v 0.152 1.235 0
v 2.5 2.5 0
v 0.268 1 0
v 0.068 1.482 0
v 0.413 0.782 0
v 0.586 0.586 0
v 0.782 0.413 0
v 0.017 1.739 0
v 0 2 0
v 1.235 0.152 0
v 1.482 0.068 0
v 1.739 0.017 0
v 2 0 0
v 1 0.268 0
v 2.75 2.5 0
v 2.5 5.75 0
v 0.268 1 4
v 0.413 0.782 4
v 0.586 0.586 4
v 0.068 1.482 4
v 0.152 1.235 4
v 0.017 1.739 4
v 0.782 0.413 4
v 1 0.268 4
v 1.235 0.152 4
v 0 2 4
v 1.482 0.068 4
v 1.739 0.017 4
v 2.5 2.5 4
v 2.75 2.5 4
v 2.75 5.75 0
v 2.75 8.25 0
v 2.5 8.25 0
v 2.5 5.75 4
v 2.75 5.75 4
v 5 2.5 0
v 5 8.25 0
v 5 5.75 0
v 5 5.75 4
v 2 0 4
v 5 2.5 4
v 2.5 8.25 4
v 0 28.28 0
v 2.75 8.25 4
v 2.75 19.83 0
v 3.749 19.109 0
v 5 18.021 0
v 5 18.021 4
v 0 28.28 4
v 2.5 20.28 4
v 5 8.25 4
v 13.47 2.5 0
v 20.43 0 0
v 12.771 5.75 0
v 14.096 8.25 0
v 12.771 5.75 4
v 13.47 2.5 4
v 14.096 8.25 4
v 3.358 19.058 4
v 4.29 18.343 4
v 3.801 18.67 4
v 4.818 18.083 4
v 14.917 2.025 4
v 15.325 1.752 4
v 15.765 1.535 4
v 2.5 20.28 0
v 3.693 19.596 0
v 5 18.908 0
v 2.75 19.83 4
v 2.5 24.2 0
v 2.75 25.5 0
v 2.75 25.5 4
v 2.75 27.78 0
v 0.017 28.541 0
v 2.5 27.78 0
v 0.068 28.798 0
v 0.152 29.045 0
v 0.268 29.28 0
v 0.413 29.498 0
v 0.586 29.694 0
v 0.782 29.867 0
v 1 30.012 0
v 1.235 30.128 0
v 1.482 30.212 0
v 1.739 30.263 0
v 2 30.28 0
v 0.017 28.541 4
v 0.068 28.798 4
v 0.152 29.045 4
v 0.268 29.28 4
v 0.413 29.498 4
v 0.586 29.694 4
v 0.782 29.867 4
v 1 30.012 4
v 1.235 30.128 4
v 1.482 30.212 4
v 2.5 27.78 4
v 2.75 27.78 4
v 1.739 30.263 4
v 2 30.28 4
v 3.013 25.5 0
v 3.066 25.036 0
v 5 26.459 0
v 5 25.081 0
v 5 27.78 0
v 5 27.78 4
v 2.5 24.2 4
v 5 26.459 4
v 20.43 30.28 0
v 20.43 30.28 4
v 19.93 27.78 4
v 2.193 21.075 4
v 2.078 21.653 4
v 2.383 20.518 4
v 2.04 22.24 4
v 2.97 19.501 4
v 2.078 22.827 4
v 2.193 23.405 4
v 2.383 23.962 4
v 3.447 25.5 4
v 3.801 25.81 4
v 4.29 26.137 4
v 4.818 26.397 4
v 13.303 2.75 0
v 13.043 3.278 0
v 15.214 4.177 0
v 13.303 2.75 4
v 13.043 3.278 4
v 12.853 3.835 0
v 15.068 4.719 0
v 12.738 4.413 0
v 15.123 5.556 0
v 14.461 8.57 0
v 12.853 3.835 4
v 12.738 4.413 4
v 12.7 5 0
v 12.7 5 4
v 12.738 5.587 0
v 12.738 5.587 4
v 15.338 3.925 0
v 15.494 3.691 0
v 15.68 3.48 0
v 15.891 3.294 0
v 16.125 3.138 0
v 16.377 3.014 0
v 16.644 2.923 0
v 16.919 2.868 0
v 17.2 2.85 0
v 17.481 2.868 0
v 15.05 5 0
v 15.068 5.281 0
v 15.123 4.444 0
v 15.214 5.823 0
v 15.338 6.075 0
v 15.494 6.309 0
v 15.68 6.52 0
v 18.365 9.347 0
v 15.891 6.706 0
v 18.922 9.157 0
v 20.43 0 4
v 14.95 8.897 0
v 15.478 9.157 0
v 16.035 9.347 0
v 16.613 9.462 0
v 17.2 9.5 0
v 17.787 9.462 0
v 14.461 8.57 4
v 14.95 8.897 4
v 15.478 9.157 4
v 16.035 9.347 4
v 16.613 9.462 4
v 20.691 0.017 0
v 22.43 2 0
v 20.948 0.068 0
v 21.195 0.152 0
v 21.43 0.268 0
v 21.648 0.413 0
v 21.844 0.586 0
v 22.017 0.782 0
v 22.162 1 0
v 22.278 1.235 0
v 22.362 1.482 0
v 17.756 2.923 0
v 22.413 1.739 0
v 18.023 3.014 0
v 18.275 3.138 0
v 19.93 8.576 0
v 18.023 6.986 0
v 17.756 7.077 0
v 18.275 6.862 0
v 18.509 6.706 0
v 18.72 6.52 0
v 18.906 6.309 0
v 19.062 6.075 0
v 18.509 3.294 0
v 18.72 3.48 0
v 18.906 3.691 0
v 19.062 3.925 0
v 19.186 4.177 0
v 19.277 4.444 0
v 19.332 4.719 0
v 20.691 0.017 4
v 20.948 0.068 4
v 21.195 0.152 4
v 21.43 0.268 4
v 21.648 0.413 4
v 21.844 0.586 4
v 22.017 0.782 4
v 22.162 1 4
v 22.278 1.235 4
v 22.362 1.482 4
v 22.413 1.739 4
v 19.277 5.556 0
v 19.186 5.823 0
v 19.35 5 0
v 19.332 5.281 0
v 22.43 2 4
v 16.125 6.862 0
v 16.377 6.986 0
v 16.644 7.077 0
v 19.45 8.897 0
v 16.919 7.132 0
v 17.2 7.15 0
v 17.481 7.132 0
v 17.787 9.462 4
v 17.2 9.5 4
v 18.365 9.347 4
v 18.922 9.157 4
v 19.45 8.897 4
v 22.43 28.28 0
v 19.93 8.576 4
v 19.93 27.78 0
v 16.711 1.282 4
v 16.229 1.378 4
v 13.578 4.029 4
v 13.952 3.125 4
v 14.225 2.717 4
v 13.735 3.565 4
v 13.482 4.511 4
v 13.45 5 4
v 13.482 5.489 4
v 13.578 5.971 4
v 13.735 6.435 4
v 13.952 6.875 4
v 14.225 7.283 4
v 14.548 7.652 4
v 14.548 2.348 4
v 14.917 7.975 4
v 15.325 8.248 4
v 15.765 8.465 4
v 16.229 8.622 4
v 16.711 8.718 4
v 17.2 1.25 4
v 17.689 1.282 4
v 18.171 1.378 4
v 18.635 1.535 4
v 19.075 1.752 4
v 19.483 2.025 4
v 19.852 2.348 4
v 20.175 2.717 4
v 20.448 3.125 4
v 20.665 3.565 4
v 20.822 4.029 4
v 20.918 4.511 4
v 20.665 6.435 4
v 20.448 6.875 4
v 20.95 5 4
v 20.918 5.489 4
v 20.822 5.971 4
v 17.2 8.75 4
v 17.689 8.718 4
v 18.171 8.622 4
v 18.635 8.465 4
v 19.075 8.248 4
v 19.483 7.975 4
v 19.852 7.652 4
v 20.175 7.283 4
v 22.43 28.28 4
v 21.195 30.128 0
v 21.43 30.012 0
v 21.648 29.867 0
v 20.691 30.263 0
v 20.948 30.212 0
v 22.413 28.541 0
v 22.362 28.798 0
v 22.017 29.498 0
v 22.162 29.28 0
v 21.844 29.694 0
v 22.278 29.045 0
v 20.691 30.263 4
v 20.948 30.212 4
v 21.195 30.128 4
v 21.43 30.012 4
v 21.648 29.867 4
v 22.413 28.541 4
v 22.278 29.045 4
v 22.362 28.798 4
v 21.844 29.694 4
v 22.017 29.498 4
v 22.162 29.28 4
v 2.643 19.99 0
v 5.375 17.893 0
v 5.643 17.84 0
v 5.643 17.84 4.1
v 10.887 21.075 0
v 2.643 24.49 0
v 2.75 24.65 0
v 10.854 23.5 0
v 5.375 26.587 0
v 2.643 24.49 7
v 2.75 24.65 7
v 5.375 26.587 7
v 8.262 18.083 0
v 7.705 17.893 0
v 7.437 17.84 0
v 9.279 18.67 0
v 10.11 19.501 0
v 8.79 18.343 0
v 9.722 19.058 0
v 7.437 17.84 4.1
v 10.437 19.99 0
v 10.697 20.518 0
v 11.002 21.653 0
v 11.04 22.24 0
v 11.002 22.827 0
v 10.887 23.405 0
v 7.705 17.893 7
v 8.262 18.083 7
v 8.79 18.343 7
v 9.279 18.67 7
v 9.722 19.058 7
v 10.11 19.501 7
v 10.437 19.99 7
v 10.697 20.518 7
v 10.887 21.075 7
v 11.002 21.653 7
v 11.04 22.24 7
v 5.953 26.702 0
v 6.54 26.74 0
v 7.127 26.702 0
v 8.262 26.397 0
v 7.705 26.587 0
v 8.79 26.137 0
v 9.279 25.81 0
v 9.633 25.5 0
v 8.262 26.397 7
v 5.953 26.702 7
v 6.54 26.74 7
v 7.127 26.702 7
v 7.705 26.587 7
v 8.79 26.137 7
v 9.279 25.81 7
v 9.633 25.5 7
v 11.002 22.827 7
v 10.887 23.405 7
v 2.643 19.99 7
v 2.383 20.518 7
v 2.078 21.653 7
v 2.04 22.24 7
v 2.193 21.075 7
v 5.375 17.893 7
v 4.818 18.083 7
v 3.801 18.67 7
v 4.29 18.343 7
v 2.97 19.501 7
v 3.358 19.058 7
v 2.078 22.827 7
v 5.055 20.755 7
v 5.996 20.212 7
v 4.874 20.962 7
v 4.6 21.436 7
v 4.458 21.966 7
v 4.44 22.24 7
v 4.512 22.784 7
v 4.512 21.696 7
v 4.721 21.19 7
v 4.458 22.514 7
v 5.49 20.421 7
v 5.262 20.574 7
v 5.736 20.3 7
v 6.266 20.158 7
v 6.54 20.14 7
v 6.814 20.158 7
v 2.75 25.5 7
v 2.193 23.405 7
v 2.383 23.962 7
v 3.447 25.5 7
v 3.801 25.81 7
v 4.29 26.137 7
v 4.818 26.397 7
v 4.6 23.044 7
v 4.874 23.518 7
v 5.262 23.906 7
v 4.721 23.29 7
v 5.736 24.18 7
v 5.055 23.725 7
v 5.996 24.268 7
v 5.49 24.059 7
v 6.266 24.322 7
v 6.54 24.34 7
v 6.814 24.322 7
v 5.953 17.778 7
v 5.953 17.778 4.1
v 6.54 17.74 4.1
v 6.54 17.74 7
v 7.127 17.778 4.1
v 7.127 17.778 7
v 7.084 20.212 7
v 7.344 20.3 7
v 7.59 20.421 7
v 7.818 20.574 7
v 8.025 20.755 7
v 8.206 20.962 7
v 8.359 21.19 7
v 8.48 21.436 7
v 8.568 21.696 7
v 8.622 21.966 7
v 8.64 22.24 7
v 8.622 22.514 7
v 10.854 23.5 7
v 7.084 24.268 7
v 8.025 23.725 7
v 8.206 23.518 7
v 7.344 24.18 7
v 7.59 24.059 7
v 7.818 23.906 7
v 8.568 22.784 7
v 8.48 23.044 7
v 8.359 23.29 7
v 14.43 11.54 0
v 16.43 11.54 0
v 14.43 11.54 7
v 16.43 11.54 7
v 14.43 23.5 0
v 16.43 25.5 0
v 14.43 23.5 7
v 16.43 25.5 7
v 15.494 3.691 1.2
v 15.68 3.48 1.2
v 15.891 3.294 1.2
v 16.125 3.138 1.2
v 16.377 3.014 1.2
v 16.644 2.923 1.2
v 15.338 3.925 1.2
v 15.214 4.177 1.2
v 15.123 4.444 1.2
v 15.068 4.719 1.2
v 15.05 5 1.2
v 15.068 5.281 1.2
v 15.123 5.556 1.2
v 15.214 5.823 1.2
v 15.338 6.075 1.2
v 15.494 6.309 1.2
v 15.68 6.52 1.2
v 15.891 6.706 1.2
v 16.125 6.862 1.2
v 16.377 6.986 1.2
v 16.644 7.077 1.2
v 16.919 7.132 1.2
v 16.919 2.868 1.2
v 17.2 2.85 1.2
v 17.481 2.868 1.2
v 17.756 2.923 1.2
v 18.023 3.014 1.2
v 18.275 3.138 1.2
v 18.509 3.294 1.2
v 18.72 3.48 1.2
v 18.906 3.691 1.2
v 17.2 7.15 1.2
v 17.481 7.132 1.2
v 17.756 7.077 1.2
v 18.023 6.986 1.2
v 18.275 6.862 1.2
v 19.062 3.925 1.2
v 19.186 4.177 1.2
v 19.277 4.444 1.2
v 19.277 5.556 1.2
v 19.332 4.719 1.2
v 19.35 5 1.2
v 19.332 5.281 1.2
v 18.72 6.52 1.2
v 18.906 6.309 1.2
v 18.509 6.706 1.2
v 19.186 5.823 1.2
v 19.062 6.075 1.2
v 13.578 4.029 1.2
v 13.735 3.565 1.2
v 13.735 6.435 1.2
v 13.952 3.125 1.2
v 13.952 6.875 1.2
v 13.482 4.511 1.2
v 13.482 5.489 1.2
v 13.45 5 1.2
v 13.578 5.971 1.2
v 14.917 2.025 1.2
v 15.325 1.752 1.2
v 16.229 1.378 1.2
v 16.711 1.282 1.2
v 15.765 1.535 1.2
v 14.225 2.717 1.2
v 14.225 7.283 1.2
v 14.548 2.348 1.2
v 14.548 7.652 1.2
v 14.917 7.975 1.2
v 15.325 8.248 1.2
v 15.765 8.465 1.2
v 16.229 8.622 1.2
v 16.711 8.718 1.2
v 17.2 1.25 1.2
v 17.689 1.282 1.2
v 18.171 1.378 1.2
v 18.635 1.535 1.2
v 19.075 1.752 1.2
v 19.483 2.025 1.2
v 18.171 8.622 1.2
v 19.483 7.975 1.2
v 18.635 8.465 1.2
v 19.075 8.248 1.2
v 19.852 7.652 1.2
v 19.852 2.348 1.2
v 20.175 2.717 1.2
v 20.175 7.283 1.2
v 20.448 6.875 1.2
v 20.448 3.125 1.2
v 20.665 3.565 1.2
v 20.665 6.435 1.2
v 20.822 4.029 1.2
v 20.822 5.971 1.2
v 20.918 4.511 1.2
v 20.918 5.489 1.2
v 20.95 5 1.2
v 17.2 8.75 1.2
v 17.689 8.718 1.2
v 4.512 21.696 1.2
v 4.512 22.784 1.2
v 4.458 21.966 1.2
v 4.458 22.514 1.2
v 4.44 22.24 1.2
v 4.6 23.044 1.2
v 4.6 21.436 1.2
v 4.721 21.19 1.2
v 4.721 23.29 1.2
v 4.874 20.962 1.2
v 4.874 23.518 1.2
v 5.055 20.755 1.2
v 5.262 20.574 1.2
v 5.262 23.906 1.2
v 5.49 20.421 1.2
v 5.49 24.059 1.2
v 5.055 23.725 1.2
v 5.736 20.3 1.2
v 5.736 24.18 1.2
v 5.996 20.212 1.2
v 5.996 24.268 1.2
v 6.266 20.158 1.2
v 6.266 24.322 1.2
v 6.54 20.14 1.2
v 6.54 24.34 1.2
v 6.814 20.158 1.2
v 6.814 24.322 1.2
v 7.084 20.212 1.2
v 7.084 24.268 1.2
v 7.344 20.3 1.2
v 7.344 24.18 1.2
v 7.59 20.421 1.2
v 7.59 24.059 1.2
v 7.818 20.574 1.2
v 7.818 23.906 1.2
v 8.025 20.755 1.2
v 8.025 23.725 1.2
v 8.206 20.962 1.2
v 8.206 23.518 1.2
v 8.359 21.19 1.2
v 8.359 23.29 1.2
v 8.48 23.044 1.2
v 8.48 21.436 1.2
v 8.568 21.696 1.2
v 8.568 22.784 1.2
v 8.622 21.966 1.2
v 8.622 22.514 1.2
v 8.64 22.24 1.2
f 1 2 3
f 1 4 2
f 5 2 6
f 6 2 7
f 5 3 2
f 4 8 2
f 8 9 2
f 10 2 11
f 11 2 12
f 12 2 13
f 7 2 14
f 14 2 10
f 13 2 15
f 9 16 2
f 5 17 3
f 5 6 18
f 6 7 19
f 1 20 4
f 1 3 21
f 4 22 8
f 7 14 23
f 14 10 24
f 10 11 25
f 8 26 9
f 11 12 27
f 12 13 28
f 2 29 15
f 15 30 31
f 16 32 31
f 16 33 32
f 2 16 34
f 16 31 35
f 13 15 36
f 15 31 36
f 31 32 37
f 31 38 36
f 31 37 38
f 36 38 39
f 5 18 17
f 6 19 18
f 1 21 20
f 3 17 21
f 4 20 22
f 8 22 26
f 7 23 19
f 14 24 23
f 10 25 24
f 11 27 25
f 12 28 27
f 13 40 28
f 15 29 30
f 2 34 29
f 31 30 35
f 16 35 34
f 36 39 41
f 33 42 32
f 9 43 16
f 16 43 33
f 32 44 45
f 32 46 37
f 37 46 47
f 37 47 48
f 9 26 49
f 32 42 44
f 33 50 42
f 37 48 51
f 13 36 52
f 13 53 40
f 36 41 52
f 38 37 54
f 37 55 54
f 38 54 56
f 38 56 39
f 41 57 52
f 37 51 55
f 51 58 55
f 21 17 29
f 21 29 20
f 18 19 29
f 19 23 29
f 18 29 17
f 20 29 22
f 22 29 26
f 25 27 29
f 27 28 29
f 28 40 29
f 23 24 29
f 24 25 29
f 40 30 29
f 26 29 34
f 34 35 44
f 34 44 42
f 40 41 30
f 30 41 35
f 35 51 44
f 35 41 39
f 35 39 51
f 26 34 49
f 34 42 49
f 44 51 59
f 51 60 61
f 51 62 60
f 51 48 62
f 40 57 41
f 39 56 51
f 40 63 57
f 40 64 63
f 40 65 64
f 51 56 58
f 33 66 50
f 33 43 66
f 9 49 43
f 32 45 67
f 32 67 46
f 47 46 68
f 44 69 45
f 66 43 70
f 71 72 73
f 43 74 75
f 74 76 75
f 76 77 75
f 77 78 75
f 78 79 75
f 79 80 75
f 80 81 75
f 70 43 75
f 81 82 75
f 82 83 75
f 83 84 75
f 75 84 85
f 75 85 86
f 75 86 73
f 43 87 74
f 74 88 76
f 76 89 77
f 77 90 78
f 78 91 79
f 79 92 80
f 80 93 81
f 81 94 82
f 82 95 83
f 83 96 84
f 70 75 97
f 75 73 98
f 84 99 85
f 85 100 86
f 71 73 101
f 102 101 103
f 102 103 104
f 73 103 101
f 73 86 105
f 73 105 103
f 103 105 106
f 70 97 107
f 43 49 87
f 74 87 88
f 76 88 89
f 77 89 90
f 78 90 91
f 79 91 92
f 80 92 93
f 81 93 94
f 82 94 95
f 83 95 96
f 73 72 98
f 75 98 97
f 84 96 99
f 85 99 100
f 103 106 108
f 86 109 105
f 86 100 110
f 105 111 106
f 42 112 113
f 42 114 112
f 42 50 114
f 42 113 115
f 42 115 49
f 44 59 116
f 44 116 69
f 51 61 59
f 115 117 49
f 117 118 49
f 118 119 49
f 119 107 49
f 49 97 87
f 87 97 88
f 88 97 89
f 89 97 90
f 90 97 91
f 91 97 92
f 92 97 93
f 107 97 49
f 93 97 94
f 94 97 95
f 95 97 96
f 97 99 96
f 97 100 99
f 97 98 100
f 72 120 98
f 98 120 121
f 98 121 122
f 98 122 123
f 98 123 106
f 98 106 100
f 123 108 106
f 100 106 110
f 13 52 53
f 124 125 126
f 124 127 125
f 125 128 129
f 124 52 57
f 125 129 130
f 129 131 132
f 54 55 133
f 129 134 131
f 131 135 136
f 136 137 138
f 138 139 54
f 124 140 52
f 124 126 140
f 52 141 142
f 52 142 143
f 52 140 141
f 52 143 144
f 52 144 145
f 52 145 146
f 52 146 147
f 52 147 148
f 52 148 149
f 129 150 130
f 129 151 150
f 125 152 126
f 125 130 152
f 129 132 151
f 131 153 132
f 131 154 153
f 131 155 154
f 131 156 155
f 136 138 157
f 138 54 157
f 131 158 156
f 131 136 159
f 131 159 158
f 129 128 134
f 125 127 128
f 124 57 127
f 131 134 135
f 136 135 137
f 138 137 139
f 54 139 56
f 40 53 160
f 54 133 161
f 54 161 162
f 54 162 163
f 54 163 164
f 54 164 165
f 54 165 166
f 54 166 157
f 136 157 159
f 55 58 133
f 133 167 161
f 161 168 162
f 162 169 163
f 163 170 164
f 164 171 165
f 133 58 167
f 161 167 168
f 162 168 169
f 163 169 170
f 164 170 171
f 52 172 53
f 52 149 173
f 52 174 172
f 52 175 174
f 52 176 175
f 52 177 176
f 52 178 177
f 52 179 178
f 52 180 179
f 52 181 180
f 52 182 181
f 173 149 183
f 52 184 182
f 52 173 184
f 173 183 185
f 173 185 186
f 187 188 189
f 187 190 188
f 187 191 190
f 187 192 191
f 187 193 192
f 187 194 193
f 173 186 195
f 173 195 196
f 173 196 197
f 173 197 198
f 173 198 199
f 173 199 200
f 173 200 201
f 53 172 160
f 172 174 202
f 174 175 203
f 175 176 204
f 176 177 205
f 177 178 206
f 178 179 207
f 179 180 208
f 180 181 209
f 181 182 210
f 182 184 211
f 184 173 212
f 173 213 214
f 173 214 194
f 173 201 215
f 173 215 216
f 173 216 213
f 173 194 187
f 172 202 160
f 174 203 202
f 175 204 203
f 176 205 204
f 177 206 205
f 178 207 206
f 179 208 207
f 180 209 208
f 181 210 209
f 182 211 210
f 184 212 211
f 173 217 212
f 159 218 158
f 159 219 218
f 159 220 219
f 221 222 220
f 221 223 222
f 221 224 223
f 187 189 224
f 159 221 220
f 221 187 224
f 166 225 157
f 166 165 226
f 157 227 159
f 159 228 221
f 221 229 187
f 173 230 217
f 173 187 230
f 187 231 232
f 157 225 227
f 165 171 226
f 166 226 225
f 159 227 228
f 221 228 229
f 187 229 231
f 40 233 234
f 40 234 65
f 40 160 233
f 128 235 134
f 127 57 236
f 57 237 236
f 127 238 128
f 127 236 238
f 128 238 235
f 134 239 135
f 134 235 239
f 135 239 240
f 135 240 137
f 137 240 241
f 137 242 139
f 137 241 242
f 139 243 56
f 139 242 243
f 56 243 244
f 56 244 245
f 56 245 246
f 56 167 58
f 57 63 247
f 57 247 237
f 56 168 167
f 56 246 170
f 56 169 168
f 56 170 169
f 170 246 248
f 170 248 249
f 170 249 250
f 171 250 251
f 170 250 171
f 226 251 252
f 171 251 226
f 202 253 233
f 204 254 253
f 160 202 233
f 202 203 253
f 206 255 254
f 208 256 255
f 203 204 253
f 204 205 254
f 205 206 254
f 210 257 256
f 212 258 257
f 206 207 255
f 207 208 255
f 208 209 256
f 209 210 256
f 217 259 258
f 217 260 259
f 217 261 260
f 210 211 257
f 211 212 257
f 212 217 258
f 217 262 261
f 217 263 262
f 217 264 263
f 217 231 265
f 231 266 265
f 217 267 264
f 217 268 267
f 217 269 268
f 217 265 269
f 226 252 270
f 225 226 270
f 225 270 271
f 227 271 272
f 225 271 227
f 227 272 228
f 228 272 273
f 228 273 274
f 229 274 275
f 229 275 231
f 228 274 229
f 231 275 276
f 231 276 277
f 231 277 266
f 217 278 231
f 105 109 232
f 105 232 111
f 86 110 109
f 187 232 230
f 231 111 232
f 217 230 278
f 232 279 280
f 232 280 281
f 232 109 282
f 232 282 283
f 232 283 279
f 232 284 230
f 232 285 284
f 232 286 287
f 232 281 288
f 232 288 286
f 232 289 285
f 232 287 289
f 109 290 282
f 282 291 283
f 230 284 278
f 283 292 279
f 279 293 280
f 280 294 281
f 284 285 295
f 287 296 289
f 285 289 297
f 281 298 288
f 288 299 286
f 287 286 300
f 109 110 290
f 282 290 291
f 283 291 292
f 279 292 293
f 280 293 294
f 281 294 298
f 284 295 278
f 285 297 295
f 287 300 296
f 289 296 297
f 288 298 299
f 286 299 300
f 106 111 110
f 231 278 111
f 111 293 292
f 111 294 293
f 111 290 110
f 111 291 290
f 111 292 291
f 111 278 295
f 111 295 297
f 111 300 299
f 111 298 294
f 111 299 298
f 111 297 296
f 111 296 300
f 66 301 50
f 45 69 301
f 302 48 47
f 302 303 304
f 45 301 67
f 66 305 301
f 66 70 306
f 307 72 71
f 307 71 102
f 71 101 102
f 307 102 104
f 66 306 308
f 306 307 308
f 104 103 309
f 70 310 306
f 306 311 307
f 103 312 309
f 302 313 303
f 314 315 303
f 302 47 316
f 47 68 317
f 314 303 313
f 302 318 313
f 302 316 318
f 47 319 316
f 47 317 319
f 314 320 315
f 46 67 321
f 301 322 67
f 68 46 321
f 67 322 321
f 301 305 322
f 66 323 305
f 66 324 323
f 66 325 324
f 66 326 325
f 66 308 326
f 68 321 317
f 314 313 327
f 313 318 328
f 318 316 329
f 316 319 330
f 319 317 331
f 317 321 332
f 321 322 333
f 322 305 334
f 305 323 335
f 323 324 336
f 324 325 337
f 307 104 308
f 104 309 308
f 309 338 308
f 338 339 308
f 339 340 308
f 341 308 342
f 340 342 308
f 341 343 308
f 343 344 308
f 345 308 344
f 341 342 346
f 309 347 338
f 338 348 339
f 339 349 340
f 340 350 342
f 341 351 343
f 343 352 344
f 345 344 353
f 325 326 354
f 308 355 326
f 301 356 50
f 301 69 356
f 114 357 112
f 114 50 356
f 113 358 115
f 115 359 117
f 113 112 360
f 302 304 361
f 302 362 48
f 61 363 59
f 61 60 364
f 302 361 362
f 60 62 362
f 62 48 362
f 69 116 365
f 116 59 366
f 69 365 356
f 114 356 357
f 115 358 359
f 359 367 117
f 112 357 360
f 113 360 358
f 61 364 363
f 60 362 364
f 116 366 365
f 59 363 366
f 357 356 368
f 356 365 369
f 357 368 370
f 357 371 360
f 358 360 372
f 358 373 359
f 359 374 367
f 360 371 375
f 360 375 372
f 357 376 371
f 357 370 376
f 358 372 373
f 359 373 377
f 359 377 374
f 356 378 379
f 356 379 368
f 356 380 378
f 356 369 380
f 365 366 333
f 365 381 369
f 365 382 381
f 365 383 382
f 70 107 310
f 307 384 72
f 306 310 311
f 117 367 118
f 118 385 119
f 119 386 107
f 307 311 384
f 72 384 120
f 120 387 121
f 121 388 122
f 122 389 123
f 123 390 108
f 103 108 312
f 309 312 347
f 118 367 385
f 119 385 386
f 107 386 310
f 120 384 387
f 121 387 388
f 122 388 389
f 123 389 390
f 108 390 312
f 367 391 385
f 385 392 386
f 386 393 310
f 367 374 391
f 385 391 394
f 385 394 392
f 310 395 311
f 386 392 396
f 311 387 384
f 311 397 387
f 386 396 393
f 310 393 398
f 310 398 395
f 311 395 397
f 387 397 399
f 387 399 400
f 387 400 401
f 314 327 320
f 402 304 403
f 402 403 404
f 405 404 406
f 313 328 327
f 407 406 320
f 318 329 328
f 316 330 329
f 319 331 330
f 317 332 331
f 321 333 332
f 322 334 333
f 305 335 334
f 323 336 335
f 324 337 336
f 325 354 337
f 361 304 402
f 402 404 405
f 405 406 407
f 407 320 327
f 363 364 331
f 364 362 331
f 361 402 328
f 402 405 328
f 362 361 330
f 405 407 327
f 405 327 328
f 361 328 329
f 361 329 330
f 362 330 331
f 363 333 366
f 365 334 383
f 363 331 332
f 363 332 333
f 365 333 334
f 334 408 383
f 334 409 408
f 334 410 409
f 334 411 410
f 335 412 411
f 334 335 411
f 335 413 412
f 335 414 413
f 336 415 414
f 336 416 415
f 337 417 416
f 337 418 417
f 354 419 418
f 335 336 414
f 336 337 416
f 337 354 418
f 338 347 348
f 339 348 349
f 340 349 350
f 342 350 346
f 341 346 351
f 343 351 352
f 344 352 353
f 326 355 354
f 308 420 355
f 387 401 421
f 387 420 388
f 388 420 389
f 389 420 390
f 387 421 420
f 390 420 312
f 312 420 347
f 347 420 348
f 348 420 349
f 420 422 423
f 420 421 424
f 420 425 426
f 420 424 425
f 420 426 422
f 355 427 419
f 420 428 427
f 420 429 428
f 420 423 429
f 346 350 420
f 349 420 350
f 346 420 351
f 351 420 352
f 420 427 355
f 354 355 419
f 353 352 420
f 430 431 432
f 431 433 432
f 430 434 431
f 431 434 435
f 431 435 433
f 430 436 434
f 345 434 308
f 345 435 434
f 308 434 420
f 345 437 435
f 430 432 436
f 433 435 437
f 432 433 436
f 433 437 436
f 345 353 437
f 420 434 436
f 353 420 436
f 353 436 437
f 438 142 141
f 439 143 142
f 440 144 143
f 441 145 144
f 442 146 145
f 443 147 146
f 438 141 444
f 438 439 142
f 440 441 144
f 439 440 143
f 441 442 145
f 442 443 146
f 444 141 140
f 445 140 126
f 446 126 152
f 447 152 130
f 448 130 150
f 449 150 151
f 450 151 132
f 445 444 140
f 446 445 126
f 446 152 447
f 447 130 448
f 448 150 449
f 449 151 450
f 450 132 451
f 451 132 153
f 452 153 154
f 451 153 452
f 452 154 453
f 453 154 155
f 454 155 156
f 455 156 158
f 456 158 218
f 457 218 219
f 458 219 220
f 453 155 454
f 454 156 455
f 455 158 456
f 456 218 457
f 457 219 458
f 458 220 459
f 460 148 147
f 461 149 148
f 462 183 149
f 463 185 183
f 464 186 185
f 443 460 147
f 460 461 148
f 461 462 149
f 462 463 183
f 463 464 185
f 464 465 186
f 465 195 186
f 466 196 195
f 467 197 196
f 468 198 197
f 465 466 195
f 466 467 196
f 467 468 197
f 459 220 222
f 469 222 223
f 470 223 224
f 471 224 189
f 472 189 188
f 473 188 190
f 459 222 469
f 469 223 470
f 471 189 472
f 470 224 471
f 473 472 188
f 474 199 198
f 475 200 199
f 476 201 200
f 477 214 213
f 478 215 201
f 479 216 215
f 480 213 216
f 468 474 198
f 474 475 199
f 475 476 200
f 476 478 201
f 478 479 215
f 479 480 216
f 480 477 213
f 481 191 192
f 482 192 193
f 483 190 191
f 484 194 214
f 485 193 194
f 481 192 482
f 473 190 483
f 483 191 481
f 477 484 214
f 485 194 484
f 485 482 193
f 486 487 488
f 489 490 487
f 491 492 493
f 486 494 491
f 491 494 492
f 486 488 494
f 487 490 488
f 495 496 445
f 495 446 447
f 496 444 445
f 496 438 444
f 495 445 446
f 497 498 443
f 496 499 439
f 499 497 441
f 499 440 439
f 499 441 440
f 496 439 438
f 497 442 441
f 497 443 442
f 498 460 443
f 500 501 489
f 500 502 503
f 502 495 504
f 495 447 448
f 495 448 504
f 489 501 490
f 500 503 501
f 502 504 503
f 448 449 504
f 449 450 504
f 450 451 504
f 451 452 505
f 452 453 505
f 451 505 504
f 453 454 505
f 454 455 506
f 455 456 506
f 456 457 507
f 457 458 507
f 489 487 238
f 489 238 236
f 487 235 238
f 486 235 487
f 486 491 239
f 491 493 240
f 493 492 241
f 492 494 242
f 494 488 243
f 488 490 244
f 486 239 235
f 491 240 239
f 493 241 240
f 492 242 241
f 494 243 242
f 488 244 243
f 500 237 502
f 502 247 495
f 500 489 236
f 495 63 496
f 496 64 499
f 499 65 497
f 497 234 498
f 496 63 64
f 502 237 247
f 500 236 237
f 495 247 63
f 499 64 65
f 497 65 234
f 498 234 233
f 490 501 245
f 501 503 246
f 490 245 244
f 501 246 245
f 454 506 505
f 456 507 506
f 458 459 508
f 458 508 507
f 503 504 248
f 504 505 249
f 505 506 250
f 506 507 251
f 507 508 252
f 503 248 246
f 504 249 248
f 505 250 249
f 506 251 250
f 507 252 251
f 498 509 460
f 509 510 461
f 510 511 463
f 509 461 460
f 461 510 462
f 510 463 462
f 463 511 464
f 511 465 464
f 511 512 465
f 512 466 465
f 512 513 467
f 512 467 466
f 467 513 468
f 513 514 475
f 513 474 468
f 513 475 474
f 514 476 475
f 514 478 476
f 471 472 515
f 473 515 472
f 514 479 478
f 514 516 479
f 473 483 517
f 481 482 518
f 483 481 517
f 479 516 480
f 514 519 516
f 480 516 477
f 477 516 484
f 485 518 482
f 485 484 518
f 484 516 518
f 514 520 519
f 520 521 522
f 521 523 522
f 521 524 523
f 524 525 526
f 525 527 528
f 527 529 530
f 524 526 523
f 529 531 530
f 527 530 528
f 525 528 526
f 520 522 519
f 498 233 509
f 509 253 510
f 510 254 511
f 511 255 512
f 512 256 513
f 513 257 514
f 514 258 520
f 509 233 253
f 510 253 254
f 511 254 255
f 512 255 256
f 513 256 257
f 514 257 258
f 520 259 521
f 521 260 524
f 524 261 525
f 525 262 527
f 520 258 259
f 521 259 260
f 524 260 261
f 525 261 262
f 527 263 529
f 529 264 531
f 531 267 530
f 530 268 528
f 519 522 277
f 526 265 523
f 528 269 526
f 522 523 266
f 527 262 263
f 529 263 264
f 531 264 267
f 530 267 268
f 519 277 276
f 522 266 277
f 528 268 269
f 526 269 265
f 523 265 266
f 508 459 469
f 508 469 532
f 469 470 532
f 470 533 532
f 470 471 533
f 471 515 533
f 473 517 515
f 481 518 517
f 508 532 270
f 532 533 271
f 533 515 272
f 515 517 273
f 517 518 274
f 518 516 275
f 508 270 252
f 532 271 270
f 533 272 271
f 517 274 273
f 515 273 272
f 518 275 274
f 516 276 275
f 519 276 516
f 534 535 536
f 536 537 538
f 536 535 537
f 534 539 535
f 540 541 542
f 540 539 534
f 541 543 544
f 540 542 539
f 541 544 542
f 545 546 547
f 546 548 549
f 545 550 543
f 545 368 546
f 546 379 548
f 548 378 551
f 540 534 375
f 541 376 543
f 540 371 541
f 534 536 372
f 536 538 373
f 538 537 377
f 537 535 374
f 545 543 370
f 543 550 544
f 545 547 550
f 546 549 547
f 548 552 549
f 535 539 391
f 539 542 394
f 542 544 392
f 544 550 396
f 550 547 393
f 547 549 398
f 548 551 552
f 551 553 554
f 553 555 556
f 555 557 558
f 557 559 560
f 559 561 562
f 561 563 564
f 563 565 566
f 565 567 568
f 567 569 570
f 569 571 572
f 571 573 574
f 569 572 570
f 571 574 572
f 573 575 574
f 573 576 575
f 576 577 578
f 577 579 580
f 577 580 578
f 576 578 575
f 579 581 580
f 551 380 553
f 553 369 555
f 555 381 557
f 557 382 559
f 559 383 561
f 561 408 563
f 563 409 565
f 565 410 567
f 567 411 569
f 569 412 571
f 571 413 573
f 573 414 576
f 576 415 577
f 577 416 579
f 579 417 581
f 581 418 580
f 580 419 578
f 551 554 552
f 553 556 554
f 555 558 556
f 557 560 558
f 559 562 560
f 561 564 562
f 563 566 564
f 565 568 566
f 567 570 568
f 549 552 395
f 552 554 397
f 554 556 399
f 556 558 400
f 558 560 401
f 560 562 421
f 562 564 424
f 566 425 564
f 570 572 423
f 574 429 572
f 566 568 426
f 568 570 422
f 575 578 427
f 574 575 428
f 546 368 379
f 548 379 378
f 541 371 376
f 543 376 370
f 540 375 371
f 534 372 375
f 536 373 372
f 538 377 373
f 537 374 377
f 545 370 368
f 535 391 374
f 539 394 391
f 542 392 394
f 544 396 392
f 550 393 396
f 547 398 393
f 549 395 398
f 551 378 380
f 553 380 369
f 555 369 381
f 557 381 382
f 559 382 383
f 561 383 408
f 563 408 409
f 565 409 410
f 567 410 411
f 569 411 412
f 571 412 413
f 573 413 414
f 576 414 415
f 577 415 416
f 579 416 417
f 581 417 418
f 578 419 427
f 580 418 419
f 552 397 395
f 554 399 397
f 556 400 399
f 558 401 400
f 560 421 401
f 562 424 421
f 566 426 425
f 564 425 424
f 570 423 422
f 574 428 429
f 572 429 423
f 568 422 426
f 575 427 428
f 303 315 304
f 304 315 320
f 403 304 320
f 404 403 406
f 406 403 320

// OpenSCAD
// ============================================================
// Boxbert Mount — TPS61023 MiniBoost (Adafruit 4654) — v3
// Stand: 09.10.2026 — BEISPIEL-Mount, noch nicht gedruckt/getestet
//
// Konzept (Daddelbert): KEINE Waende. Flache Gitterplatte (4 mm),
// daraus ragt ein Post (+ 2 gleichhohe Stuetzstege in L-Form).
// In den Post wird der ruthex RX-M2.5x5.7 eingelötet; die Platine
// wird auf den Post-Kopf geschraubt und "schwebt" 7 mm ueber Holz.
// Grund fuer die Stuetzstege: die Platine hat nur EIN Loch —
// nur der Post allein wuerde kippeln.
//
// Quellen (nicht geraten):
//   Platine 17.8 x 11.3 mm, Hoehe 5.6 mm -> adafruit.com/product/4654
//   Bohrbild: github.com/adafruit/Adafruit-TPS61023-PCB (.brd)
//     - EIN Montageloch Ø2.5 (M2.5), je 2.54 mm von Lang-/Schmalkante,
//       Ecke diagonal zum 4-Pin-Header JP1 (0.1"-Raster, Reihe
//       2.54 mm ab Gegenseite)
//     - alle SMD-Bauteile Oberseite (kein 'M'-rot im .brd)
//   ruthex RX-M2.5x5.7, offizielles STEP: Koerper Ø4.06,
//   Kragen Ø4.6, L 5.7 -> Pocket Ø4.2 / Tiefe 5.8
//
// Schrauben:
//   Platine: M2.5 x 7 (M2.5x8 staende am Pocket-Boden an)
//   Mount->Holz: 1x M4 Zylinderkopf, K-B Ø7.5, in Einschlagmutter M4
//   ⚠ 1 Holzschraube = Mount kann theoretisch rotieren. Praktisch
//   halten Nachbar-Mounts + Flachbandkabel; sonst 2. Loch ergänzen.
//
// Header-Freiraum: Pin-Spitzen enden bei z ~4.5, Loetpunkte ~5.5 —
// beide ueber der Platte (4.0). Der rechte Stuetzsteg beginnt erst
// unterhalb des letzten Pins (Loetpunkt-Freiraum am letzten Pin).
//
// VOR DEM DRUCK: Pocket-Ø 4.2 an ECHTEM Einsatz testen (Probewürfel),
// Platine auf Post/Stege legen, Lochposition gegenprüfen (Klon-Gefahr).
// ============================================================

/* [Platine — Adafruit 4654] */
board_l = 11.43;
board_w = 17.78;
hole_from_x = 2.54;      // Loch ab linker Kante
hole_from_y_top = 2.54;  // Loch ab oberer Kante
header_from_y = 2.54;    // Header-Reihe ab unterer Kante

/* [ruthex RX-M2.5x5.7] */
pocket_d = 4.2;          // STEP-Koerper Ø4.06 + Spiel -> PROBEDRUCK
pocket_l = 5.8;          // STEP-Laenge 5.7 + 0.1

/* [Mount] */
plate_t  = 4.0;          // Gitterplatte
post_top = 7.0;          // Oberkante Post + Stuetzstege
post_d   = 9.0;
sup_w    = 2.0;          // Stuetzstegbreite
rib_w    = 2.5;          // Gitterrippen
margin_l = 4.0;          // links (Post-Seite)
margin_r = 7.0;          // rechts
margin_b = 7.0;          // unten (Platz Holzschraube)
margin_t = 5.5;          // oben
wood_d   = 4.3;          // M4-Durchgang
wood_cb_d = 7.5;         // Kopf-K-B M4 Zylinderkopf
wood_cb_t = 2.8;
corner_r = 2.0;
$fn = 48;

// --- abgeleitet ---
outer_l = margin_l + board_l + margin_r;   // 22.43
outer_w = margin_b + board_w + margin_t;   // 30.28
bx = margin_l; by = margin_b;              // Platinenursprung (4, 7)
boss_x = bx + hole_from_x;                 // 6.54
boss_y = by + board_w - hole_from_y_top;   // 22.24
header_y = by + header_from_y;             // 9.54
header_xs = [for (i=[0:3]) bx + 5.715 + (i-1.5)*2.54];
screw_pos = [17.2, 5.0];                   // M4 -> Einschlagmutter Holz
edge = 0.4;                                // Mindeststeg zwischen Aussparungen

// ================= 2D-Grundkoerper =================
module outline() {
    offset(r = corner_r) offset(delta = -corner_r)
        square([outer_l, outer_w]);
}

// Platte (z 0..plate_t)
module plate2d() {
    union() {
        difference() { outline(); offset(r = -rib_w) outline(); }  // Ring
        translate([rib_w/2, by - rib_w/2])                         // Rippe unten (bordnetze)
            square([outer_l - rib_w, rib_w]);
        translate([bx - rib_w/2, rib_w/2])                         // Rippe links (2.25 breit)
            square([rib_w - 0.25, outer_w - rib_w]);
        translate([screw_pos[0], screw_pos[1]]) circle(d = 9);     // Pad Holzschraube
    }
}

// Erhabene Teile (z 0..post_top)
module raised2d() {
    union() {
        translate([boss_x, boss_y]) circle(d = post_d);            // Post
        // Stuetzsteg unter Platinen-Oberkante (bis zum rechten Steg)
        translate([bx - 1.25, by + board_w - 1.28])
            square([(bx + board_l - 1.0) - (bx - 1.25), sup_w]);
        // Stuetzsteg rechts, abstandshalber zum letzten Header-Pin
        translate([bx + board_l - 1.0, header_y + 2.0])
            square([sup_w, (by + board_w - 1.28 + sup_w) - (header_y + 2.0)]);
    }
}

// Aussparungen in der Platte (Gitter)
module cuts2d() {
    union() {
        // grosse Mitte (Header-Pins haengen hier frei in der Luft)
        translate([bx + 1.4, by + 2.2])   // y ab 9.2: K-B der Holzschraube (bis 8.75) frei lassen
            square([(bx + board_l - 1.3) - (bx + 1.4),
                    (boss_y - post_d/2 - edge) - (by + 1.7)]);
        // rechts neben dem Post (bis vor den rechten Stuetzsteg)
        translate([boss_x + post_d/2 + 0.3, boss_y - post_d/2 + 0.3])
            square([(bx + board_l - 1.3) - (boss_x + post_d/2 + 0.3),
                    (by + board_w - 1.28 - edge) - (boss_y - post_d/2 + 0.3)]);
        // rechts zwischen Stuetzsteg und Aussenring
        translate([bx + board_l - 1.0 + sup_w + edge, header_y + 2.0])
            square([(outer_l - rib_w - edge) - (bx + board_l - 1.0 + sup_w + edge),
                    (outer_w - rib_w - edge) - (header_y + 2.0)]);
        // Streifen oberhalb des oberen Stuetzstegs (erst RECHTS vom Post!)
        translate([boss_x + post_d/2 + edge, by + board_w - 1.28 + sup_w + edge])
            square([(bx + board_l - 1.0 + sup_w + edge) - (boss_x + post_d/2 + edge),
                    (outer_w - rib_w - edge) - (by + board_w - 1.28 + sup_w + edge)]);
        // Streifen unterhalb der unteren Rippe (links vom Schrauben-Pad)
        translate([bx + 1.4, rib_w + edge])
            square([12.4 - (bx + 1.4), (by - rib_w/2 - edge) - (rib_w + edge)]);
    }
}

// ================= 3D =================
module holes() {
    // Pocket im Post (von oben)
    translate([boss_x, boss_y, post_top - pocket_l])
        cylinder(d = pocket_d, h = pocket_l + 0.1);
    // Holzschraube: Durchgang + Kopf-K-B von oben
    translate([screw_pos[0], screw_pos[1], 0]) {
        translate([0, 0, -0.1]) cylinder(d = wood_d, h = plate_t + 0.2);
        translate([0, 0, plate_t - wood_cb_t])
            cylinder(d = wood_cb_d, h = wood_cb_t + 0.05);
    }
}

module mount() {
    difference() {
        union() {
            linear_extrude(plate_t) plate2d();
            linear_extrude(post_top) raised2d();   // Post/Steg durchgehend ab z0
        }
        translate([0, 0, -0.1]) linear_extrude(plate_t + 0.2) cuts2d();
        holes();
    }
}

mount();

echo("Aussen:", outer_l, "x", outer_w, " Post-Top:", post_top);
echo("Boss:", boss_x, boss_y, " Header-Y:", header_y);
echo("Header-Pins X:", header_xs, " Schraube:", screw_pos);
